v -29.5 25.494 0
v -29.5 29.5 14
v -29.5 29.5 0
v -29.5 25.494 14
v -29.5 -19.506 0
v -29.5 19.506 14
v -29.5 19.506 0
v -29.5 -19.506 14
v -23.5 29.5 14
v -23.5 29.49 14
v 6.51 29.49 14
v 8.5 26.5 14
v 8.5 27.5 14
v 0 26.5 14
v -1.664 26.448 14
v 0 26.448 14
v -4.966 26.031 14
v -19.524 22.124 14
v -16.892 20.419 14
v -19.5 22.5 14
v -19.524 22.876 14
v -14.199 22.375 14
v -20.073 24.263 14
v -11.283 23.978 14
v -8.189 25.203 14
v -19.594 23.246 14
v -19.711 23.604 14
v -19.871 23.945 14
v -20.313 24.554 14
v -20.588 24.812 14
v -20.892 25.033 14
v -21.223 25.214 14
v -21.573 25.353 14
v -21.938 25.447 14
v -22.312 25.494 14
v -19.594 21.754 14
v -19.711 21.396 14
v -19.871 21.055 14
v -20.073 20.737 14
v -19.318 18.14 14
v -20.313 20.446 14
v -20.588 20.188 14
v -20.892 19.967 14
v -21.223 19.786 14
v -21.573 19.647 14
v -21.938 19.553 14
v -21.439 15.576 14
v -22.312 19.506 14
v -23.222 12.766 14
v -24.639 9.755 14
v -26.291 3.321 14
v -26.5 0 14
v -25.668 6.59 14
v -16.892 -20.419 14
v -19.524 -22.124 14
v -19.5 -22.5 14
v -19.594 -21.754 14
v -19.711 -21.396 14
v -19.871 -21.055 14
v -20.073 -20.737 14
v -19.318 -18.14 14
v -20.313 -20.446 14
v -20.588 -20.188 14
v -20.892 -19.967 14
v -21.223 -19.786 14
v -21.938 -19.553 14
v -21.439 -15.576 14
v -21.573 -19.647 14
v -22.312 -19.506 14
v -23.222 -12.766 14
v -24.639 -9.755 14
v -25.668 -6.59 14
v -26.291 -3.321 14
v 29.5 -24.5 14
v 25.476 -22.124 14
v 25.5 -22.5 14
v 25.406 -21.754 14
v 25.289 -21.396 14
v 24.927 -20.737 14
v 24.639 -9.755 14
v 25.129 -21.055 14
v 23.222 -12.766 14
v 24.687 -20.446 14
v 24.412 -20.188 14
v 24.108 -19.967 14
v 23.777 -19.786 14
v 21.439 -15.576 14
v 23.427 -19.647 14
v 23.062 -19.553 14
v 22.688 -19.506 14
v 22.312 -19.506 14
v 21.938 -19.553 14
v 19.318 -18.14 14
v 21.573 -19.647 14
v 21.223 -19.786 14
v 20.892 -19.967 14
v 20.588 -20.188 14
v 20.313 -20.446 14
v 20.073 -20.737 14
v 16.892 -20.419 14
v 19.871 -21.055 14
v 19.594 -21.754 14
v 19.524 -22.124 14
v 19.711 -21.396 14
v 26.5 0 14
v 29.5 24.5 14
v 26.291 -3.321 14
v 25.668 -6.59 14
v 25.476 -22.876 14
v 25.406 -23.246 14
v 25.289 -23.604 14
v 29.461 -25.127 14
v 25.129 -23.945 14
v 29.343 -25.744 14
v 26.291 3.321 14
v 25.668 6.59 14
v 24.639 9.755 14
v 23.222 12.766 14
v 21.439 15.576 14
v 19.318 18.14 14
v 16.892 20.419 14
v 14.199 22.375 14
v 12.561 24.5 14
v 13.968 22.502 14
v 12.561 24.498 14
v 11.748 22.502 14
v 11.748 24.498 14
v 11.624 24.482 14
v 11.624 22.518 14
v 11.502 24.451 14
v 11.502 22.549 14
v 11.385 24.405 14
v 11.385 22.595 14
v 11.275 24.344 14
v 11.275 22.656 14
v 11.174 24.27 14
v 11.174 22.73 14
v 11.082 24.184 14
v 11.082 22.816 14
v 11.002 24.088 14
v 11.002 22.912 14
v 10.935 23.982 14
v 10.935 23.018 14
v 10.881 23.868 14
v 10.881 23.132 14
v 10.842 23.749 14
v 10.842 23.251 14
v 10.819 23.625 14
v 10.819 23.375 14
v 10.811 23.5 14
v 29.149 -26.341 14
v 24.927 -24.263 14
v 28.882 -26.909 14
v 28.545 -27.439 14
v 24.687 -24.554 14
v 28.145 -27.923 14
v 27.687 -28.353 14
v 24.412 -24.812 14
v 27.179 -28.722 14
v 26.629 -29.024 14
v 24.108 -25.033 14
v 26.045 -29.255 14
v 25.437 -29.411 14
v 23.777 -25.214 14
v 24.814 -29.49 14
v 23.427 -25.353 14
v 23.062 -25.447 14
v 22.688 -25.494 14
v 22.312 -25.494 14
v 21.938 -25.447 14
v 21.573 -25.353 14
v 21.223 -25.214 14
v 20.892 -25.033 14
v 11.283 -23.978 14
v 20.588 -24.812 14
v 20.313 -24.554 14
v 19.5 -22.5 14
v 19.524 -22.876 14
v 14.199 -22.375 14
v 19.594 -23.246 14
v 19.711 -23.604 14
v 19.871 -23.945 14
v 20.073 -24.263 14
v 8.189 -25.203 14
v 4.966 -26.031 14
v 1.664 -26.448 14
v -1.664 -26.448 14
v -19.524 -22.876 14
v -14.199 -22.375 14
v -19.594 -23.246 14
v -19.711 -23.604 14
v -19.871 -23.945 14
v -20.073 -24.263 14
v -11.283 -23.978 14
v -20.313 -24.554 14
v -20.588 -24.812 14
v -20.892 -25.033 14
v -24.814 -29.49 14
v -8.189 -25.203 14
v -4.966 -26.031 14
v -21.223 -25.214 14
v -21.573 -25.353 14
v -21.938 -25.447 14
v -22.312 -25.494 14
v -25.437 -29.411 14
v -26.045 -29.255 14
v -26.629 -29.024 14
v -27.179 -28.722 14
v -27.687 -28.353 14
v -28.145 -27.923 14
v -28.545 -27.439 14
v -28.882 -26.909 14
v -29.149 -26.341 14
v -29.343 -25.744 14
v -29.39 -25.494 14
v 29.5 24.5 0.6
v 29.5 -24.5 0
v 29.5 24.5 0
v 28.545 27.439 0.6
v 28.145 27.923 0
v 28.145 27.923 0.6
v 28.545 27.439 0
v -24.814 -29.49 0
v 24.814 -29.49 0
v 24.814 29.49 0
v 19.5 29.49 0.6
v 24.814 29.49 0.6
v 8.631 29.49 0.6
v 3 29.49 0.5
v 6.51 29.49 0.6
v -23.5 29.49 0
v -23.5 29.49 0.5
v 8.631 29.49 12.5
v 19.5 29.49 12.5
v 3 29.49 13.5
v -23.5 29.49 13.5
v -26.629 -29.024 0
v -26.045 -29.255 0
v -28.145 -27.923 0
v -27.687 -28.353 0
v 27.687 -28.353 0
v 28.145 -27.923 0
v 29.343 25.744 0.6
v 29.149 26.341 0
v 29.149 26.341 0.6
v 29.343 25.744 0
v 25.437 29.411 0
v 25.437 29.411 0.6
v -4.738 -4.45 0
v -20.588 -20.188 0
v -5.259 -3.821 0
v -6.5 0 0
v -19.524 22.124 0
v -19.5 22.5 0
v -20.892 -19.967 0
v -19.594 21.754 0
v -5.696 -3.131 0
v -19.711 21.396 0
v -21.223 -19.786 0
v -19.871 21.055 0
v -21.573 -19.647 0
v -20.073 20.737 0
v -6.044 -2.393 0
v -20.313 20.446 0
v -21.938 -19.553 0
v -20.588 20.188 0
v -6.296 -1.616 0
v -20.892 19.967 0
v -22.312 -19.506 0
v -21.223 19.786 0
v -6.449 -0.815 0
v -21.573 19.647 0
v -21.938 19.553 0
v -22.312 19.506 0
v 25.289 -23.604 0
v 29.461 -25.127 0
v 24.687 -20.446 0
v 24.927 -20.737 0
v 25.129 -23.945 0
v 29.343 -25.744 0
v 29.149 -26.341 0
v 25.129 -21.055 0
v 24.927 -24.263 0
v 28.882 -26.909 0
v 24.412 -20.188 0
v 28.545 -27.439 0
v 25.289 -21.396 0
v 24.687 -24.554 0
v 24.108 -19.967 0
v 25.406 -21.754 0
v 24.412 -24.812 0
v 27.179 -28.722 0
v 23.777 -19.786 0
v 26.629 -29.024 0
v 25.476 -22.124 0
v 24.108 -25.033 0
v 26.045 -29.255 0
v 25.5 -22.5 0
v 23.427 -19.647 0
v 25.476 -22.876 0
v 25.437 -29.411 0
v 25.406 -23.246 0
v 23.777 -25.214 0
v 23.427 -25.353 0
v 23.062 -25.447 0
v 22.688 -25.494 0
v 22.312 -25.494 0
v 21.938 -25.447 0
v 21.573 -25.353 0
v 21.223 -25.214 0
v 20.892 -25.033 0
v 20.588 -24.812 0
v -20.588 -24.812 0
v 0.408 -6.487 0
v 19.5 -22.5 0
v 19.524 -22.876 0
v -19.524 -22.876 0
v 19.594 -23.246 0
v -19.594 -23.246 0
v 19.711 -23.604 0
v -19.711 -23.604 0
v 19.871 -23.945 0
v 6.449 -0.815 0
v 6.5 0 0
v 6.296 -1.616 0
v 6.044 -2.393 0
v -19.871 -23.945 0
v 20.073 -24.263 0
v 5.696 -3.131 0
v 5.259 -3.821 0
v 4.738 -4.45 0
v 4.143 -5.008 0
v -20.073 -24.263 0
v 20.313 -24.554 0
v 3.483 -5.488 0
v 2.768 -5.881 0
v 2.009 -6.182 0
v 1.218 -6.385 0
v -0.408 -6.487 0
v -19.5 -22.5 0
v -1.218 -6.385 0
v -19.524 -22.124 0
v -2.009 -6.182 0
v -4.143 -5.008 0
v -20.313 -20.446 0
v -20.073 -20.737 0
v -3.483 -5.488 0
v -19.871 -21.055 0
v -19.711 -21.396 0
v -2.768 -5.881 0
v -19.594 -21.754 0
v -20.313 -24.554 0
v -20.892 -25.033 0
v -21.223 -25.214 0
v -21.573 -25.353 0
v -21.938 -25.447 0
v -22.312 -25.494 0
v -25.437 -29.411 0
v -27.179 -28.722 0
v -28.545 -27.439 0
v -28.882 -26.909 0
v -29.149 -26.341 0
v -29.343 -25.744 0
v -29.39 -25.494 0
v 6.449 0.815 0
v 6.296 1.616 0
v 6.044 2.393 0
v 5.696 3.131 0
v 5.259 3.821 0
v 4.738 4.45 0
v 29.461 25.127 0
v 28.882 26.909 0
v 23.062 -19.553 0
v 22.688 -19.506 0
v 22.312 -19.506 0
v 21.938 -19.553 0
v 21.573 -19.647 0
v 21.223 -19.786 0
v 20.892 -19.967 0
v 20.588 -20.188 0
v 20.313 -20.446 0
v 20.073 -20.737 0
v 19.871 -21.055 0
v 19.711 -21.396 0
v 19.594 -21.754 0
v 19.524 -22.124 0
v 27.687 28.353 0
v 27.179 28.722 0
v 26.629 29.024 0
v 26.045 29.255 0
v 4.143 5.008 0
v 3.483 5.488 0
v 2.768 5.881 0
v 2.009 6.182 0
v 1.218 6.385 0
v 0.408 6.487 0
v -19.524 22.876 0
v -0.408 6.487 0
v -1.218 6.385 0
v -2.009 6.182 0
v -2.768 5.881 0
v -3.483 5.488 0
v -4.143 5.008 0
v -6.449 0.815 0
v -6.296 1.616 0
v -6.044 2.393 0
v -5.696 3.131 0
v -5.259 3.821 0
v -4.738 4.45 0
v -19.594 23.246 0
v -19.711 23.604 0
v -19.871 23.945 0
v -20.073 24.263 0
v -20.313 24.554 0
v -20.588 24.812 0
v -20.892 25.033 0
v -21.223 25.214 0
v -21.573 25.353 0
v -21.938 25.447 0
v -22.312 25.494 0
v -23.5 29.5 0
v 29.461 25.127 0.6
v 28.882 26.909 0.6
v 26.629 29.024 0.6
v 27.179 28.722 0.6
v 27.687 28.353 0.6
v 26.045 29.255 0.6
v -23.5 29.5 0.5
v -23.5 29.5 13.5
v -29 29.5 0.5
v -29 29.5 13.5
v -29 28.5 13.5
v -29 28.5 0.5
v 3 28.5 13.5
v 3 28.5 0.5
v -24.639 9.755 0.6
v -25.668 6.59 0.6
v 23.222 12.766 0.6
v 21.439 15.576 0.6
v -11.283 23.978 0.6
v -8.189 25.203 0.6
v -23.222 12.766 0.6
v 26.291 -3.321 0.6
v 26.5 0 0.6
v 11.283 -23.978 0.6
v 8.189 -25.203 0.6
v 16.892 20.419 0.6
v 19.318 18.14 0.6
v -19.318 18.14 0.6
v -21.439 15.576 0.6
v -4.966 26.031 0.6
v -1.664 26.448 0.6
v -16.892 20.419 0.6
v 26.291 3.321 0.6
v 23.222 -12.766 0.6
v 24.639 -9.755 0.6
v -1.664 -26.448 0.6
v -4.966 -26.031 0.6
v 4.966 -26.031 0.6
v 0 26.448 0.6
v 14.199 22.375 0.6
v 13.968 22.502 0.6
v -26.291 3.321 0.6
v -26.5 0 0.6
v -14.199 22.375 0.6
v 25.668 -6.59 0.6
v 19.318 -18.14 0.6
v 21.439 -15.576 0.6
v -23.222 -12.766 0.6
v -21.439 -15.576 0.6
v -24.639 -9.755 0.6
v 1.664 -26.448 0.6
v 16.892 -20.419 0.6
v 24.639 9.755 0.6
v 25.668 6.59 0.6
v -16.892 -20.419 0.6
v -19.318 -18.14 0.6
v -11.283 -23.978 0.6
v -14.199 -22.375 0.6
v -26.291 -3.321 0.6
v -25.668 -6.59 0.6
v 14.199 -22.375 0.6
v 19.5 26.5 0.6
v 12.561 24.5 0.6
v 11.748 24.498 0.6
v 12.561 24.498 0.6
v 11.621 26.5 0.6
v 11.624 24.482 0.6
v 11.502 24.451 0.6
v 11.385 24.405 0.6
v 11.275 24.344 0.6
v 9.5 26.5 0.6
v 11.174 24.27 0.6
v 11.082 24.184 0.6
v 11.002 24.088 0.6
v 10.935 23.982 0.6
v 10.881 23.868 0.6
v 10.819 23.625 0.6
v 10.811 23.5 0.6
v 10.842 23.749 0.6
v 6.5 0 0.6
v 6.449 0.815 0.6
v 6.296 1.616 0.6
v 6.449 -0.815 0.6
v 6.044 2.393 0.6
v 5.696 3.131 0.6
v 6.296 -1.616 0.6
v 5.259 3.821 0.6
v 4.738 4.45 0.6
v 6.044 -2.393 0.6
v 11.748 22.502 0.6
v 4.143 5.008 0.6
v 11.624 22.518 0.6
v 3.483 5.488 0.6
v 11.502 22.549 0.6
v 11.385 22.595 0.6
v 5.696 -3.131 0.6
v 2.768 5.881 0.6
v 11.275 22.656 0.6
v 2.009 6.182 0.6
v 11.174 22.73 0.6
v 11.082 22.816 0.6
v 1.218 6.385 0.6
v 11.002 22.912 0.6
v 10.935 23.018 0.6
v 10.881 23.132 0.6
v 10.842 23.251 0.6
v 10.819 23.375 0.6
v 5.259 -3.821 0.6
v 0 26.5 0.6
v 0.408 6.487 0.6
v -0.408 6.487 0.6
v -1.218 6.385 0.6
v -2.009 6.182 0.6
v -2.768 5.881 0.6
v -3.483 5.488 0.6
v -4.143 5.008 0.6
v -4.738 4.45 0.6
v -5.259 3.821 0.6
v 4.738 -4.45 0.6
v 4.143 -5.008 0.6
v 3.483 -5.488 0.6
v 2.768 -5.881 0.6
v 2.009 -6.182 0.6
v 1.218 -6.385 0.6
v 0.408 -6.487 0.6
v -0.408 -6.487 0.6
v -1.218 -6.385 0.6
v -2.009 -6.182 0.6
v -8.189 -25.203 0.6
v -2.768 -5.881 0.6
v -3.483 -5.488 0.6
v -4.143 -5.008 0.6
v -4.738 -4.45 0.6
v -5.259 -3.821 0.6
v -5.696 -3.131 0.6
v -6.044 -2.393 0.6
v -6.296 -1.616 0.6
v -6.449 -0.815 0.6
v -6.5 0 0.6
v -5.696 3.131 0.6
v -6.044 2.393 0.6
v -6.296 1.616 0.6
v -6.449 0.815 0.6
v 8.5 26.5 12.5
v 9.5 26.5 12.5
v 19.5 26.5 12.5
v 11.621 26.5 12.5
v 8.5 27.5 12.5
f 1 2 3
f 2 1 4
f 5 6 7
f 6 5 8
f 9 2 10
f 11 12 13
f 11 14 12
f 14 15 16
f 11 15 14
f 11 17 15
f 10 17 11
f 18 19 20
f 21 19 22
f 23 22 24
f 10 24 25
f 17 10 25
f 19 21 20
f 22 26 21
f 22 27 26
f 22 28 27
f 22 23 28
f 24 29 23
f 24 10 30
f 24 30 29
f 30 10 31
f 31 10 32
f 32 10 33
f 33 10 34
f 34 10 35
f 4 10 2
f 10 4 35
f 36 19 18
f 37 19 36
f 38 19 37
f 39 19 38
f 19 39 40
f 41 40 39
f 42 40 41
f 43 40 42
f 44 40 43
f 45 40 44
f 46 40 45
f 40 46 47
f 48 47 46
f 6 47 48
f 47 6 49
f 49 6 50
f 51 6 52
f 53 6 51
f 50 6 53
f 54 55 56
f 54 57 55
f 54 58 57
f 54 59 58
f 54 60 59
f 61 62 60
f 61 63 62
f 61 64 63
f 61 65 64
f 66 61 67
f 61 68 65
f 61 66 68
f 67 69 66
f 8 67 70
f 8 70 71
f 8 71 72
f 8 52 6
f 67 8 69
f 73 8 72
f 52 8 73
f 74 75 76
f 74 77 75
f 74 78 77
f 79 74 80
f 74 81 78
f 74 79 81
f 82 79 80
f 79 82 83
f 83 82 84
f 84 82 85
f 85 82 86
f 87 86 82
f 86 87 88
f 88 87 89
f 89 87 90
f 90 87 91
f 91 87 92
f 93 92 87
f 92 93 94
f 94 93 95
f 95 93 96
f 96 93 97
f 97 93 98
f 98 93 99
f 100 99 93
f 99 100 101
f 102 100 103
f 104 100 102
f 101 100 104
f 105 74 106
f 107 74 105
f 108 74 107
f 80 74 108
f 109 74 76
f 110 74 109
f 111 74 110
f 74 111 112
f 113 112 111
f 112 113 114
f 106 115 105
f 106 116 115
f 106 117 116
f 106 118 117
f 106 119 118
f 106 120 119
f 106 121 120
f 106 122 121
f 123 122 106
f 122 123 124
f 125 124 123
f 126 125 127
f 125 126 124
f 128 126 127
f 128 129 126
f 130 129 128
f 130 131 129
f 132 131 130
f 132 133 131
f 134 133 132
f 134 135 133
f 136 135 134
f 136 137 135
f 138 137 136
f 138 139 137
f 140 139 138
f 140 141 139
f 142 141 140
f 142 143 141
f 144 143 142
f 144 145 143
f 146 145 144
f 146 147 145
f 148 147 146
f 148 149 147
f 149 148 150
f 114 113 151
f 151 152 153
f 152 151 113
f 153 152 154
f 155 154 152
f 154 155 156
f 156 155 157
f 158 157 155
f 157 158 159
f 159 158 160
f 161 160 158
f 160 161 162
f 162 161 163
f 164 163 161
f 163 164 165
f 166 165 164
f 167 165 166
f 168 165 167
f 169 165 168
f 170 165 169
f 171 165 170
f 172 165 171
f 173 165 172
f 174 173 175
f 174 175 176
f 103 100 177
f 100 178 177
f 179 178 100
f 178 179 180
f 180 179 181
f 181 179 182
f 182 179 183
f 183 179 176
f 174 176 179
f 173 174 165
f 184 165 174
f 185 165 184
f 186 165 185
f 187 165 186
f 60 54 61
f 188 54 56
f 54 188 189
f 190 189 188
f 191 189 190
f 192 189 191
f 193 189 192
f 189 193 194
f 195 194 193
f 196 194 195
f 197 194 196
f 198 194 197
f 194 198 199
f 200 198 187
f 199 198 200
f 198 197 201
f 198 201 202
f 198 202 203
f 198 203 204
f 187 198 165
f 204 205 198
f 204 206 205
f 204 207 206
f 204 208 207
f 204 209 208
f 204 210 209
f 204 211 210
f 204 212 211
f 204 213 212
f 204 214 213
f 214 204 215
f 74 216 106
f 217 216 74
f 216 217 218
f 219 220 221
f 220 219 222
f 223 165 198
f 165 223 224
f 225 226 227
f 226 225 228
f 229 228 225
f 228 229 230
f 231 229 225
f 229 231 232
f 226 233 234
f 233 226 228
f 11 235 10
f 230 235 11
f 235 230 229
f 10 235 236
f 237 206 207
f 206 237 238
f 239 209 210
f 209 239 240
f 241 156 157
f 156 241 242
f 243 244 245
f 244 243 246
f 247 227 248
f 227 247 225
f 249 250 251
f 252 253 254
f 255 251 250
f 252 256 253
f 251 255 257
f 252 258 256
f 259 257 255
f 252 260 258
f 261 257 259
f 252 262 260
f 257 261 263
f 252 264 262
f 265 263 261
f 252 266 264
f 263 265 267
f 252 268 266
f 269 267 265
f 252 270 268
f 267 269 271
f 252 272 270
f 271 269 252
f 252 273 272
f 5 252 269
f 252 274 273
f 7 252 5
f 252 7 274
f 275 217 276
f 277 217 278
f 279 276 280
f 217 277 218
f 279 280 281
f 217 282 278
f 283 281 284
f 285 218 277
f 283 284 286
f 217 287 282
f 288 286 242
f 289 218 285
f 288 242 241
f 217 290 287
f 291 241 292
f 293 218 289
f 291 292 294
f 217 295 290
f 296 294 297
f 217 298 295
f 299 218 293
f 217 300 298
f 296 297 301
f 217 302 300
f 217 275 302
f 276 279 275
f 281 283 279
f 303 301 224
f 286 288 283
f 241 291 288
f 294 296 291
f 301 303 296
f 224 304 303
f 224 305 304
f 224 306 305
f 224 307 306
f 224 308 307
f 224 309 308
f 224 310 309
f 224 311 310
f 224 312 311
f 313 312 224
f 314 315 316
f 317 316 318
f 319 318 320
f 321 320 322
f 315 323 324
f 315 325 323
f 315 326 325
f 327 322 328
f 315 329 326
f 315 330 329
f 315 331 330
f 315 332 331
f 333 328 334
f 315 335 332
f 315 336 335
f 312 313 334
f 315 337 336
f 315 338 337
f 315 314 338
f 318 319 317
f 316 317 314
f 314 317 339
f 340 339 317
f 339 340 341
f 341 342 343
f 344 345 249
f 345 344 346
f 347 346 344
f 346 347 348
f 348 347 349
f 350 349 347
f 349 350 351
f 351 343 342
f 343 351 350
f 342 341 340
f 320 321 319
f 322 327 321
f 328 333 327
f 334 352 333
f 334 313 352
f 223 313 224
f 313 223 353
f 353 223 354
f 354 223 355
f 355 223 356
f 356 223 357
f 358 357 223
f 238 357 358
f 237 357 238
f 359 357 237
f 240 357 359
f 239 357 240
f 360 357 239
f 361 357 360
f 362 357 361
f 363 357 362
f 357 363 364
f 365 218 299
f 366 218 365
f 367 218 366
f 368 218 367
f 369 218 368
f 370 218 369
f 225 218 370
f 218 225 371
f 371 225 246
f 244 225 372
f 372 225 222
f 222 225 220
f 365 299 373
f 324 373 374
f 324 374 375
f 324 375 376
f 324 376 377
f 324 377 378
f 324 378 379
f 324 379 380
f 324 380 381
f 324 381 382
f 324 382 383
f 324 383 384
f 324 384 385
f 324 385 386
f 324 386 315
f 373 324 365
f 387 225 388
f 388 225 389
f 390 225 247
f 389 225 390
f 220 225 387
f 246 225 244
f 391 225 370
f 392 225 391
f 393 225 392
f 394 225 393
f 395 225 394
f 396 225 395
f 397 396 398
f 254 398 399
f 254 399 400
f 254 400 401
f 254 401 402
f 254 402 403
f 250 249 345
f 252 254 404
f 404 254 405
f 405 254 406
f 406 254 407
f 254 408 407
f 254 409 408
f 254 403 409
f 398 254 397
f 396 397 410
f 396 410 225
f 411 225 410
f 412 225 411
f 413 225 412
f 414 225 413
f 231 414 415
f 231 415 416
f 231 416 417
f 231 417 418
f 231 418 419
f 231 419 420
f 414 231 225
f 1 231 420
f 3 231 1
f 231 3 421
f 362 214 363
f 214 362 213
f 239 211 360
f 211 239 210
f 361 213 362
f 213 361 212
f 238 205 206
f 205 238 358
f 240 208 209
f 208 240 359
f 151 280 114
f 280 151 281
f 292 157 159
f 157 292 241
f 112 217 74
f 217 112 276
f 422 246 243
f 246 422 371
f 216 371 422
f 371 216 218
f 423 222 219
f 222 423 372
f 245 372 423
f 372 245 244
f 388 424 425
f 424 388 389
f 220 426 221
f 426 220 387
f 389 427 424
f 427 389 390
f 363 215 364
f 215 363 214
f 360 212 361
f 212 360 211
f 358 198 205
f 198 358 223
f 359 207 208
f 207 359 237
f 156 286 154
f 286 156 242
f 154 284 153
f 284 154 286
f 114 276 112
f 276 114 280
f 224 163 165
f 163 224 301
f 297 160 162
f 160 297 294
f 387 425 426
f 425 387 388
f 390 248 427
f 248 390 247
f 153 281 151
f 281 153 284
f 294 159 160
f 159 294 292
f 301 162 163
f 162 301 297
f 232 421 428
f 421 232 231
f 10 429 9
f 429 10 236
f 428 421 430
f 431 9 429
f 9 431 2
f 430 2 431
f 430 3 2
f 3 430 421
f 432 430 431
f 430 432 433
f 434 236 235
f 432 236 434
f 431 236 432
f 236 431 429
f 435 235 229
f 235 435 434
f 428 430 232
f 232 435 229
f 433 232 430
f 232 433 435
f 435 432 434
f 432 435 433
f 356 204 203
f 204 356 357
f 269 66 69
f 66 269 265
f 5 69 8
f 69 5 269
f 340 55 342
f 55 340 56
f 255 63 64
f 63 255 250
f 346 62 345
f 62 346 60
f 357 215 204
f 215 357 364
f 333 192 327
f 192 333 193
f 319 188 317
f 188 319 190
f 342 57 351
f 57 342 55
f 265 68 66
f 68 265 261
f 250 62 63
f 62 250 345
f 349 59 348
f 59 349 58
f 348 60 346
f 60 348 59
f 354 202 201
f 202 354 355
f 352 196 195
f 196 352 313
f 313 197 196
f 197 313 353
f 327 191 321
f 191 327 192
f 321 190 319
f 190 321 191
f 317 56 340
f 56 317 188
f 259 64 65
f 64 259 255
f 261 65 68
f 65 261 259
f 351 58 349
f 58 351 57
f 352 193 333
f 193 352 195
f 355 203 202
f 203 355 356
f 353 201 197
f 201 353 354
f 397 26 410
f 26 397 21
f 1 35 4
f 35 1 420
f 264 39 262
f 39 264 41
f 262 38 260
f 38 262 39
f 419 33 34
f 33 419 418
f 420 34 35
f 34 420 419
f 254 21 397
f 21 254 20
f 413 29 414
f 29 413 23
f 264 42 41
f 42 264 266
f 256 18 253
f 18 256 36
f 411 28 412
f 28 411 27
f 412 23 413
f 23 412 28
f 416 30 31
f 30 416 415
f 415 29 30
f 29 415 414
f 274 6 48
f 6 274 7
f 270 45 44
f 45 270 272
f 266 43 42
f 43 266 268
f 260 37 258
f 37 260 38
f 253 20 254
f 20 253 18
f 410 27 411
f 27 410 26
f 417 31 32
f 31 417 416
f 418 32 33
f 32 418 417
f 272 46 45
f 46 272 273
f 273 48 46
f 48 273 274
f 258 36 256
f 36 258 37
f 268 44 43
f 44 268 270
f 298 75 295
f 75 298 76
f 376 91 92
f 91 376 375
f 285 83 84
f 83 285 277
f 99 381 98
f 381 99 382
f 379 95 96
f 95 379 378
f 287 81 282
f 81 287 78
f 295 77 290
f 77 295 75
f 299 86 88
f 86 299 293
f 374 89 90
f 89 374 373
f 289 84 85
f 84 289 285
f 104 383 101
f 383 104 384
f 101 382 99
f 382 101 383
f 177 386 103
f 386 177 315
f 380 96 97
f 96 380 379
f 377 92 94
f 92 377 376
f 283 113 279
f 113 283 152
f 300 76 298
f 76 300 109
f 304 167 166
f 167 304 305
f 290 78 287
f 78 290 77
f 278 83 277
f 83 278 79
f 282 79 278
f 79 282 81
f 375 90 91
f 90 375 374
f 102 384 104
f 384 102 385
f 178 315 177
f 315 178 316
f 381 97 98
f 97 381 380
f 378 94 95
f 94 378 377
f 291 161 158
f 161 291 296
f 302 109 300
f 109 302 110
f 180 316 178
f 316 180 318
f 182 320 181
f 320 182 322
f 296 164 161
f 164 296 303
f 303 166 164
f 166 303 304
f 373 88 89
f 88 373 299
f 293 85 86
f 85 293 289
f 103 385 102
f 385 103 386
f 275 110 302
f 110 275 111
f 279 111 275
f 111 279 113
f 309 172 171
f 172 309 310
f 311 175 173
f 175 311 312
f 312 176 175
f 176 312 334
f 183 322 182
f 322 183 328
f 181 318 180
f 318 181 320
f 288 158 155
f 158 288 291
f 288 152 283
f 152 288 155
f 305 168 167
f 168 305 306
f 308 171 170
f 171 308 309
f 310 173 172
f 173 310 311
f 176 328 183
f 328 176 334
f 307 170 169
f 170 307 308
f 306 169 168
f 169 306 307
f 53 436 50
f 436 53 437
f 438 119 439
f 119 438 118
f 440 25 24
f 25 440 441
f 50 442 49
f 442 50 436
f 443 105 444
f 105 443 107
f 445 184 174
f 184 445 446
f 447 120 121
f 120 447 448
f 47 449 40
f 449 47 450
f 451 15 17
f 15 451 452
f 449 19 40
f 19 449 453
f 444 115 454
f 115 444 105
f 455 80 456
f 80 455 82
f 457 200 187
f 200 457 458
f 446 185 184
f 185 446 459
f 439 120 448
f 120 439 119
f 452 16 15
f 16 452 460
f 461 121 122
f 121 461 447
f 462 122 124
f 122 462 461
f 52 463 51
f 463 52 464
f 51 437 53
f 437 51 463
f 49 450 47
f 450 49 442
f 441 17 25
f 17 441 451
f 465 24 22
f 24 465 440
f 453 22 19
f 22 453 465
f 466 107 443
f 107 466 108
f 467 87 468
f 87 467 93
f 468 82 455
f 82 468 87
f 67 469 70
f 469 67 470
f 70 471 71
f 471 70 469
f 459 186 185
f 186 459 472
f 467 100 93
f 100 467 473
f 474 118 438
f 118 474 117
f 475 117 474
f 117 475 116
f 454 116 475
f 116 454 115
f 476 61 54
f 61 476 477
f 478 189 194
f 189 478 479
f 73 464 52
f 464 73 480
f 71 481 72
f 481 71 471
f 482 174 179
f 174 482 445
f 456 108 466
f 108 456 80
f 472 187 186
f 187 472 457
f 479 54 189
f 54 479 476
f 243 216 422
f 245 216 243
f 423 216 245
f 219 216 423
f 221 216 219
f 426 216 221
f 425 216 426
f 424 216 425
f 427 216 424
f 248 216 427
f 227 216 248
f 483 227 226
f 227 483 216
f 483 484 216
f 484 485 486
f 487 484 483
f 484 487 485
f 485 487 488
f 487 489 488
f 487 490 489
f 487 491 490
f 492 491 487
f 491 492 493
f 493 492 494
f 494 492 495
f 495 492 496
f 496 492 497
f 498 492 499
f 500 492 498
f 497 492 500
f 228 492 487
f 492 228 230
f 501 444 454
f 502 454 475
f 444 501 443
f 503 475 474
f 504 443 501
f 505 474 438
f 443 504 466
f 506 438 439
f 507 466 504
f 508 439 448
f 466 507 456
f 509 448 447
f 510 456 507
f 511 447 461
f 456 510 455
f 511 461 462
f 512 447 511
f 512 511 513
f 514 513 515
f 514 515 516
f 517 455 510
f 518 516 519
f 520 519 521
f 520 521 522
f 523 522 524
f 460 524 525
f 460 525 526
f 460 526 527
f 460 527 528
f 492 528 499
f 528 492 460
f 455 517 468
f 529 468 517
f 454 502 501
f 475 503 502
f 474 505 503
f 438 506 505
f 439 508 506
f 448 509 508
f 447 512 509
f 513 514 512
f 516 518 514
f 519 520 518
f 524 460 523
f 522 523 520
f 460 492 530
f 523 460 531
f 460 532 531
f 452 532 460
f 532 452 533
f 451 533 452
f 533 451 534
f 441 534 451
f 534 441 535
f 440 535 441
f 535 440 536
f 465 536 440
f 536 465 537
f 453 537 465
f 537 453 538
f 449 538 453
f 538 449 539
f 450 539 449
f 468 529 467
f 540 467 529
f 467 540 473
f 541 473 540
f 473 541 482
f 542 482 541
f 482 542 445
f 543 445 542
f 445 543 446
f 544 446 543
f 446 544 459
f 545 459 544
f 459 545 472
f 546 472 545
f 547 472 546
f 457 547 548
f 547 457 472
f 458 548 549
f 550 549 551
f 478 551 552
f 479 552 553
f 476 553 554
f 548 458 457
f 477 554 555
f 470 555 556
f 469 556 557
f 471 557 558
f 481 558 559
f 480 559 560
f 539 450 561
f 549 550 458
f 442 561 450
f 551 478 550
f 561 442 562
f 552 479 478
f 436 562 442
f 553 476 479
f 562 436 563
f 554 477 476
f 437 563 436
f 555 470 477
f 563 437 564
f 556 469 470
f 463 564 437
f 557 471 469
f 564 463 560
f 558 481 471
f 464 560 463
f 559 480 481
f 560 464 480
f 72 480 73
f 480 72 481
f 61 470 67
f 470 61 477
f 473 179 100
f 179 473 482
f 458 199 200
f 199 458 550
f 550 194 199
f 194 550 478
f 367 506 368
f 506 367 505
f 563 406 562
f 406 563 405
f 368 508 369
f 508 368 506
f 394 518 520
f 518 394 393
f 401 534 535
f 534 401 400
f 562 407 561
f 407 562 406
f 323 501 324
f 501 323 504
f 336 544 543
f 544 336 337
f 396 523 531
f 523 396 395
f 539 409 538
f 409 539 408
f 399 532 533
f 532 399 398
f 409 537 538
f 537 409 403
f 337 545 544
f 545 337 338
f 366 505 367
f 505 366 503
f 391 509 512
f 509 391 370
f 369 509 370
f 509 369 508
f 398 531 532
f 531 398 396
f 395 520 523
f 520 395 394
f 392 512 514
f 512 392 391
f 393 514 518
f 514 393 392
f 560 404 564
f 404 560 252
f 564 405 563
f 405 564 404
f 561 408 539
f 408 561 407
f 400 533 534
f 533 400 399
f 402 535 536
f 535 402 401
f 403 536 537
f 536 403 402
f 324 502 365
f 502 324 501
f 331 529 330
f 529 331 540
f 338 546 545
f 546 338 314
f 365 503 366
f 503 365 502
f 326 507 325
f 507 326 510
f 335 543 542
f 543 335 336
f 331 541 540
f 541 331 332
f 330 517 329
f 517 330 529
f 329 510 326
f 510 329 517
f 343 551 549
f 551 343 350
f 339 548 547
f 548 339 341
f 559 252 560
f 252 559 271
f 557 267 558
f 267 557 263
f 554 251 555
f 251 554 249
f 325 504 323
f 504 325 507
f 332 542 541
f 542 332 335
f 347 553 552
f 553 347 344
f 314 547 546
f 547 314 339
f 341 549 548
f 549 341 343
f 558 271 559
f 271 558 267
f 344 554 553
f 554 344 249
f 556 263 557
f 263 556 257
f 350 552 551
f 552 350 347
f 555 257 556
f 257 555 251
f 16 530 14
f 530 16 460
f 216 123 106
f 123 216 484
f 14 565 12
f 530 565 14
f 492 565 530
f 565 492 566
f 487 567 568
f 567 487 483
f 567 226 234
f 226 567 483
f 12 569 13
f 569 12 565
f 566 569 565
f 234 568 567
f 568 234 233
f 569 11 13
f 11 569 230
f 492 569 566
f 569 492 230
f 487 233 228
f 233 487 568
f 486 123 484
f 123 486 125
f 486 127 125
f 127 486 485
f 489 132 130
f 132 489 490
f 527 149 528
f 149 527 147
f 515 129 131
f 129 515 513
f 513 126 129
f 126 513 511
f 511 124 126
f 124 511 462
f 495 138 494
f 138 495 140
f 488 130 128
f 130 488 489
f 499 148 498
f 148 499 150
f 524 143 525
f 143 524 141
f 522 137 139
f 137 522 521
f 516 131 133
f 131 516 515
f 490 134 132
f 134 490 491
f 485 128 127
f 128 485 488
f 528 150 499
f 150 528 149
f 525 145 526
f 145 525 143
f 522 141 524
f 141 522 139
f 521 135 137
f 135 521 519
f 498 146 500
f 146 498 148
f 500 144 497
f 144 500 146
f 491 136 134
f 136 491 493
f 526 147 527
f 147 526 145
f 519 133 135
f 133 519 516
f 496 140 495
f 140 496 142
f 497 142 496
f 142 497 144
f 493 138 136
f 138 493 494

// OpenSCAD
$fn = 50;


union() {
	difference() {
		union() {
			translate(v = [0, 0, 0]) {
				rotate(a = [0, 0, 0]) {
					hull() {
						translate(v = [-24.5000000000, 24.5000000000, 0]) {
							rotate(a = [0, 0, 0]) {
								translate(v = [0, 0, 0]) {
									rotate(a = [0, 0, 0]) {
										cylinder(h = 14, r = 5);
									}
								}
							}
						}
						translate(v = [24.5000000000, 24.5000000000, 0]) {
							rotate(a = [0, 0, 0]) {
								translate(v = [0, 0, 0]) {
									rotate(a = [0, 0, 0]) {
										cylinder(h = 14, r = 5);
									}
								}
							}
						}
						translate(v = [-24.5000000000, -24.5000000000, 0]) {
							rotate(a = [0, 0, 0]) {
								translate(v = [0, 0, 0]) {
									rotate(a = [0, 0, 0]) {
										cylinder(h = 14, r = 5);
									}
								}
							}
						}
						translate(v = [24.5000000000, -24.5000000000, 0]) {
							rotate(a = [0, 0, 0]) {
								translate(v = [0, 0, 0]) {
									rotate(a = [0, 0, 0]) {
										cylinder(h = 14, r = 5);
									}
								}
							}
						}
					}
				}
			}
			translate(v = [-29.5000000000, 23.5000000000, 0]) {
				rotate(a = [0, 0, 0]) {
					cube(size = [6, 6, 14]);
				}
			}
		}
		union() {
			#translate(v = [-29.0000000000, 28.5000000000, 0.5000000000]) {
				rotate(a = [0, 0, 0]) {
					cube(size = [32, 1, 13.0000000000]);
				}
			}
			translate(v = [-30.0000000000, -22.5000000000, -125]) {
				rotate(a = [0, 0, 0]) {
					hull() {
						translate(v = [7.5000000000, 0, 0]) {
							rotate(a = [0, 0, 0]) {
								translate(v = [0, 0, 0]) {
									rotate(a = [0, 0, 0]) {
										cylinder(h = 250, r = 3.0000000000);
									}
								}
							}
						}
						translate(v = [-7.5000000000, 0, 0]) {
							rotate(a = [0, 0, 0]) {
								translate(v = [0, 0, 0]) {
									rotate(a = [0, 0, 0]) {
										cylinder(h = 250, r = 3.0000000000);
									}
								}
							}
						}
					}
				}
			}
			translate(v = [-30.0000000000, 22.5000000000, -125]) {
				rotate(a = [0, 0, 0]) {
					hull() {
						translate(v = [7.5000000000, 0, 0]) {
							rotate(a = [0, 0, 0]) {
								translate(v = [0, 0, 0]) {
									rotate(a = [0, 0, 0]) {
										cylinder(h = 250, r = 3.0000000000);
									}
								}
							}
						}
						translate(v = [-7.5000000000, 0, 0]) {
							rotate(a = [0, 0, 0]) {
								translate(v = [0, 0, 0]) {
									rotate(a = [0, 0, 0]) {
										cylinder(h = 250, r = 3.0000000000);
									}
								}
							}
						}
					}
				}
			}
			translate(v = [22.5000000000, -22.5000000000, -125.0000000000]) {
				rotate(a = [0, 0, 0]) {
					cylinder(h = 250, r = 3.0000000000);
				}
			}
			translate(v = [0, 0, 0.6000000000]) {
				rotate(a = [0, 0, 0]) {
					cylinder(h = 16.4000000000, r = 26.5000000000);
				}
			}
			translate(v = [0, 0, -7.0000000000]) {
				rotate(a = [0, 0, 0]) {
					cylinder(h = 14, r = 6.5000000000);
				}
			}
			translate(v = [0.0000000000, 24.5000000000, 0.6000000000]) {
				rotate(a = [0, 0, 0]) {
					cube(size = [29.5000000000, 2, 16.4000000000]);
				}
			}
			translate(v = [19.5000000000, 24.5000000000, 0.6000000000]) {
				rotate(a = [0, 0, 0]) {
					cube(size = [10, 5, 16.4000000000]);
				}
			}
			translate(v = [8.5000000000, 24.5000000000, 12.5000000000]) {
				rotate(a = [0, 0, 0]) {
					cube(size = [21, 5, 1.5000000000]);
				}
			}
			translate(v = [5.7500000000, 30.2500000000, 0.6000000000]) {
				rotate(a = [0, 0, -45]) {
					cube(size = [7.5000000000, 1.5000000000, 16.4000000000]);
				}
			}
			translate(v = [5.0610000000, 22.5000000000, 0.6000000000]) {
				rotate(a = [0, 0, 0]) {
					cube(size = [7.5000000000, 2, 13.4000000000]);
				}
			}
		}
	}
	union() {
		translate(v = [14.3110000000, 23.5000000000, 0]) {
			rotate(a = [0, 0, 0]) {
				hull() {
					translate(v = [2.5000000000, 0, 0]) {
						rotate(a = [0, 0, 0]) {
							#translate(v = [0, 0, 0]) {
								rotate(a = [0, 0, 0]) {
									cylinder(h = 14, r = 1.0000000000);
								}
							}
						}
					}
					translate(v = [-2.5000000000, 0, 0]) {
						rotate(a = [0, 0, 0]) {
							#translate(v = [0, 0, 0]) {
								rotate(a = [0, 0, 0]) {
									cylinder(h = 14, r = 1.0000000000);
								}
							}
						}
					}
				}
			}
		}
	}
}
